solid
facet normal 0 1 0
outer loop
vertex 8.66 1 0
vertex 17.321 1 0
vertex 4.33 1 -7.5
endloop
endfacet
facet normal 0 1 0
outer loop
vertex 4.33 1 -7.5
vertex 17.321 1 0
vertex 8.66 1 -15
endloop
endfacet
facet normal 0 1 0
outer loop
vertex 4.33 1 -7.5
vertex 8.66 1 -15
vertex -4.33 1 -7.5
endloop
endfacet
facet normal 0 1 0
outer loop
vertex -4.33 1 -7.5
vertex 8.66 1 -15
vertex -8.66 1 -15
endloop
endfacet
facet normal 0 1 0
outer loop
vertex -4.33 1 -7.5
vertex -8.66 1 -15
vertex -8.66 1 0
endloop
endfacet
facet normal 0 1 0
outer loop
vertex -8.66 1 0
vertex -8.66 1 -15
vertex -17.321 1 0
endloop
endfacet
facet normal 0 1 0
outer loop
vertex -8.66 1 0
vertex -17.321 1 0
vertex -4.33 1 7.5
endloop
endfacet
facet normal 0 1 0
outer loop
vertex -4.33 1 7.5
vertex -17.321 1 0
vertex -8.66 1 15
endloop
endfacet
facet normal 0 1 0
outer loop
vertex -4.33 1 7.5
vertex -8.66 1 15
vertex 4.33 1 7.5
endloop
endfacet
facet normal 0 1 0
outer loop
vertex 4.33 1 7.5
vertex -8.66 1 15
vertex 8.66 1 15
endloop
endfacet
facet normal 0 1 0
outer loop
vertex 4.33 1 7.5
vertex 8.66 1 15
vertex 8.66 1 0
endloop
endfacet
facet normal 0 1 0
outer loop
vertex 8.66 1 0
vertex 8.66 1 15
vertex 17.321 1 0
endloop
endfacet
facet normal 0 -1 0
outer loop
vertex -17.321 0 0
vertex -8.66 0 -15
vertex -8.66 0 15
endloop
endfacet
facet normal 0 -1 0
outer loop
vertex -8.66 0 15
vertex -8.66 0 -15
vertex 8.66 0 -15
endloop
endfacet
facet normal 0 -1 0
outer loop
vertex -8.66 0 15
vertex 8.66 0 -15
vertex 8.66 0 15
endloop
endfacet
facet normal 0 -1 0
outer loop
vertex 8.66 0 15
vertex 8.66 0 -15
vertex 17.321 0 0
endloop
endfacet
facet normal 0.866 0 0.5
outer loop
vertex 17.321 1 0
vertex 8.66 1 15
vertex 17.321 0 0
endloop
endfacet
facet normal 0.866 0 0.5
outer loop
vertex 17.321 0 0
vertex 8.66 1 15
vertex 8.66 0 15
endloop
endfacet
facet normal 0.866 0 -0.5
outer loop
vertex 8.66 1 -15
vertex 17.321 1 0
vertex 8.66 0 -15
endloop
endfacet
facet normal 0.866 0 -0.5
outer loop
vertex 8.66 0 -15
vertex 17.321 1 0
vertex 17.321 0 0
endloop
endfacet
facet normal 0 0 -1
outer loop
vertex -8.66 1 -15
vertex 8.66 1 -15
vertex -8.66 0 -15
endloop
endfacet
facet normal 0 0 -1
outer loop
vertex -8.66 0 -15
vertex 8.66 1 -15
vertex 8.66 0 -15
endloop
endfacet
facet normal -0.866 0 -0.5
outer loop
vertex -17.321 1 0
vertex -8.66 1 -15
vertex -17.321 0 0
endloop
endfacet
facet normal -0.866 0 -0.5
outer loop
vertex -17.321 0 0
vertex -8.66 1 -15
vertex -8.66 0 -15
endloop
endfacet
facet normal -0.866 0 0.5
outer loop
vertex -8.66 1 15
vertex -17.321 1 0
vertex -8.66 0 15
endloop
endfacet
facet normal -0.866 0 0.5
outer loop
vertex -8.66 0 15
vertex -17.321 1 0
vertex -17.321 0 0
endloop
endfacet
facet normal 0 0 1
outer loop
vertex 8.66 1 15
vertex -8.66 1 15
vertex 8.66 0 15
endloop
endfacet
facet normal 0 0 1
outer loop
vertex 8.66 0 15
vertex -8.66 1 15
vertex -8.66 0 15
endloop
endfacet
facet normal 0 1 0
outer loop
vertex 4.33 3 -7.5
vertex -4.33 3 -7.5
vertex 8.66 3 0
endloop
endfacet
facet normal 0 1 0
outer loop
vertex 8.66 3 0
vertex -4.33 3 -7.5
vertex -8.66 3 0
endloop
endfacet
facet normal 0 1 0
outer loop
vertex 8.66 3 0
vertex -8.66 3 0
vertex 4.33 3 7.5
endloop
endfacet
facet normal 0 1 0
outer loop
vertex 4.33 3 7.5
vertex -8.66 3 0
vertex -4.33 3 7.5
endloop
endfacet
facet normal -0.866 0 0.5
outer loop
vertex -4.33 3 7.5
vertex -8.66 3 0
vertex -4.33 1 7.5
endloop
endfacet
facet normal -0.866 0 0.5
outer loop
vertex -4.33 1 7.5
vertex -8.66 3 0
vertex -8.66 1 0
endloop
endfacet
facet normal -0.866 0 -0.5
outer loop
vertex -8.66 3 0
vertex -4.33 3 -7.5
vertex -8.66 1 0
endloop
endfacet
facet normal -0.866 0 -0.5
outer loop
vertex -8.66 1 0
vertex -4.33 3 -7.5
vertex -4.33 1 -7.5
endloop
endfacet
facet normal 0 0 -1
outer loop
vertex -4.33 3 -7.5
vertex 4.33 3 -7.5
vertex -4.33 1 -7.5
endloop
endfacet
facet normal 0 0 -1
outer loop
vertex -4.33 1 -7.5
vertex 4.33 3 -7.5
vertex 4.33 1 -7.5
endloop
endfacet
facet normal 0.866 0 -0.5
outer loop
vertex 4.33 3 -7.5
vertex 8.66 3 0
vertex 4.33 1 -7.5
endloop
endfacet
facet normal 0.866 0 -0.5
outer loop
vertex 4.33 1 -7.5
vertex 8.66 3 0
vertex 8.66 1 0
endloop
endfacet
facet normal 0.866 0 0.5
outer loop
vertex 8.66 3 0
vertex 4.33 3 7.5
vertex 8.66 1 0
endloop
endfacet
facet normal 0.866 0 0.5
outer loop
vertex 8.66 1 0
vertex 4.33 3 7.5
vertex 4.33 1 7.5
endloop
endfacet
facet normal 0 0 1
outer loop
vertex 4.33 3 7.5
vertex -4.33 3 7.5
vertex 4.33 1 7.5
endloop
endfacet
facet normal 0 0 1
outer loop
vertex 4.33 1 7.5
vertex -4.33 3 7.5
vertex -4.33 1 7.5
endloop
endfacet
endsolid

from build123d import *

# Parameters (mm, degrees)
BOSS_EXTRUDE1_DEPTH = 1
BOSS_EXTRUDE2_DEPTH = 3


with BuildPart() as part:
    # Sketch2 → Boss-Extrude1 (new body)
    with BuildSketch(Plane(origin=(0, 0, 0), x_dir=(1, 0, 0), z_dir=(0, 1, 0))):
        Polygon((17.320508076, 0), (8.660254038, 15), (-8.660254038, 15), (-17.320508076, 0), (-8.660254038, -15), (8.660254038, -15), align=None)
        Polygon((8.660254038, 0), (4.330127019, 7.5), (-4.330127019, 7.5), (-8.660254038, 0), (-4.330127019, -7.5), (4.330127019, -7.5), align=None, mode=Mode.SUBTRACT)
    extrude(amount=BOSS_EXTRUDE1_DEPTH)

    # Sketch2<2> → Boss-Extrude2 (add)
    with BuildSketch(Plane(origin=(0, 0, 0), x_dir=(1, 0, 0), z_dir=(0, 1, 0))):
        Polygon((4.330127019, -7.5), (8.660254038, 0), (4.330127019, 7.5), (-4.330127019, 7.5), (-8.660254038, 0), (-4.330127019, -7.5), align=None)
    extrude(amount=BOSS_EXTRUDE2_DEPTH)


solid = part.part
